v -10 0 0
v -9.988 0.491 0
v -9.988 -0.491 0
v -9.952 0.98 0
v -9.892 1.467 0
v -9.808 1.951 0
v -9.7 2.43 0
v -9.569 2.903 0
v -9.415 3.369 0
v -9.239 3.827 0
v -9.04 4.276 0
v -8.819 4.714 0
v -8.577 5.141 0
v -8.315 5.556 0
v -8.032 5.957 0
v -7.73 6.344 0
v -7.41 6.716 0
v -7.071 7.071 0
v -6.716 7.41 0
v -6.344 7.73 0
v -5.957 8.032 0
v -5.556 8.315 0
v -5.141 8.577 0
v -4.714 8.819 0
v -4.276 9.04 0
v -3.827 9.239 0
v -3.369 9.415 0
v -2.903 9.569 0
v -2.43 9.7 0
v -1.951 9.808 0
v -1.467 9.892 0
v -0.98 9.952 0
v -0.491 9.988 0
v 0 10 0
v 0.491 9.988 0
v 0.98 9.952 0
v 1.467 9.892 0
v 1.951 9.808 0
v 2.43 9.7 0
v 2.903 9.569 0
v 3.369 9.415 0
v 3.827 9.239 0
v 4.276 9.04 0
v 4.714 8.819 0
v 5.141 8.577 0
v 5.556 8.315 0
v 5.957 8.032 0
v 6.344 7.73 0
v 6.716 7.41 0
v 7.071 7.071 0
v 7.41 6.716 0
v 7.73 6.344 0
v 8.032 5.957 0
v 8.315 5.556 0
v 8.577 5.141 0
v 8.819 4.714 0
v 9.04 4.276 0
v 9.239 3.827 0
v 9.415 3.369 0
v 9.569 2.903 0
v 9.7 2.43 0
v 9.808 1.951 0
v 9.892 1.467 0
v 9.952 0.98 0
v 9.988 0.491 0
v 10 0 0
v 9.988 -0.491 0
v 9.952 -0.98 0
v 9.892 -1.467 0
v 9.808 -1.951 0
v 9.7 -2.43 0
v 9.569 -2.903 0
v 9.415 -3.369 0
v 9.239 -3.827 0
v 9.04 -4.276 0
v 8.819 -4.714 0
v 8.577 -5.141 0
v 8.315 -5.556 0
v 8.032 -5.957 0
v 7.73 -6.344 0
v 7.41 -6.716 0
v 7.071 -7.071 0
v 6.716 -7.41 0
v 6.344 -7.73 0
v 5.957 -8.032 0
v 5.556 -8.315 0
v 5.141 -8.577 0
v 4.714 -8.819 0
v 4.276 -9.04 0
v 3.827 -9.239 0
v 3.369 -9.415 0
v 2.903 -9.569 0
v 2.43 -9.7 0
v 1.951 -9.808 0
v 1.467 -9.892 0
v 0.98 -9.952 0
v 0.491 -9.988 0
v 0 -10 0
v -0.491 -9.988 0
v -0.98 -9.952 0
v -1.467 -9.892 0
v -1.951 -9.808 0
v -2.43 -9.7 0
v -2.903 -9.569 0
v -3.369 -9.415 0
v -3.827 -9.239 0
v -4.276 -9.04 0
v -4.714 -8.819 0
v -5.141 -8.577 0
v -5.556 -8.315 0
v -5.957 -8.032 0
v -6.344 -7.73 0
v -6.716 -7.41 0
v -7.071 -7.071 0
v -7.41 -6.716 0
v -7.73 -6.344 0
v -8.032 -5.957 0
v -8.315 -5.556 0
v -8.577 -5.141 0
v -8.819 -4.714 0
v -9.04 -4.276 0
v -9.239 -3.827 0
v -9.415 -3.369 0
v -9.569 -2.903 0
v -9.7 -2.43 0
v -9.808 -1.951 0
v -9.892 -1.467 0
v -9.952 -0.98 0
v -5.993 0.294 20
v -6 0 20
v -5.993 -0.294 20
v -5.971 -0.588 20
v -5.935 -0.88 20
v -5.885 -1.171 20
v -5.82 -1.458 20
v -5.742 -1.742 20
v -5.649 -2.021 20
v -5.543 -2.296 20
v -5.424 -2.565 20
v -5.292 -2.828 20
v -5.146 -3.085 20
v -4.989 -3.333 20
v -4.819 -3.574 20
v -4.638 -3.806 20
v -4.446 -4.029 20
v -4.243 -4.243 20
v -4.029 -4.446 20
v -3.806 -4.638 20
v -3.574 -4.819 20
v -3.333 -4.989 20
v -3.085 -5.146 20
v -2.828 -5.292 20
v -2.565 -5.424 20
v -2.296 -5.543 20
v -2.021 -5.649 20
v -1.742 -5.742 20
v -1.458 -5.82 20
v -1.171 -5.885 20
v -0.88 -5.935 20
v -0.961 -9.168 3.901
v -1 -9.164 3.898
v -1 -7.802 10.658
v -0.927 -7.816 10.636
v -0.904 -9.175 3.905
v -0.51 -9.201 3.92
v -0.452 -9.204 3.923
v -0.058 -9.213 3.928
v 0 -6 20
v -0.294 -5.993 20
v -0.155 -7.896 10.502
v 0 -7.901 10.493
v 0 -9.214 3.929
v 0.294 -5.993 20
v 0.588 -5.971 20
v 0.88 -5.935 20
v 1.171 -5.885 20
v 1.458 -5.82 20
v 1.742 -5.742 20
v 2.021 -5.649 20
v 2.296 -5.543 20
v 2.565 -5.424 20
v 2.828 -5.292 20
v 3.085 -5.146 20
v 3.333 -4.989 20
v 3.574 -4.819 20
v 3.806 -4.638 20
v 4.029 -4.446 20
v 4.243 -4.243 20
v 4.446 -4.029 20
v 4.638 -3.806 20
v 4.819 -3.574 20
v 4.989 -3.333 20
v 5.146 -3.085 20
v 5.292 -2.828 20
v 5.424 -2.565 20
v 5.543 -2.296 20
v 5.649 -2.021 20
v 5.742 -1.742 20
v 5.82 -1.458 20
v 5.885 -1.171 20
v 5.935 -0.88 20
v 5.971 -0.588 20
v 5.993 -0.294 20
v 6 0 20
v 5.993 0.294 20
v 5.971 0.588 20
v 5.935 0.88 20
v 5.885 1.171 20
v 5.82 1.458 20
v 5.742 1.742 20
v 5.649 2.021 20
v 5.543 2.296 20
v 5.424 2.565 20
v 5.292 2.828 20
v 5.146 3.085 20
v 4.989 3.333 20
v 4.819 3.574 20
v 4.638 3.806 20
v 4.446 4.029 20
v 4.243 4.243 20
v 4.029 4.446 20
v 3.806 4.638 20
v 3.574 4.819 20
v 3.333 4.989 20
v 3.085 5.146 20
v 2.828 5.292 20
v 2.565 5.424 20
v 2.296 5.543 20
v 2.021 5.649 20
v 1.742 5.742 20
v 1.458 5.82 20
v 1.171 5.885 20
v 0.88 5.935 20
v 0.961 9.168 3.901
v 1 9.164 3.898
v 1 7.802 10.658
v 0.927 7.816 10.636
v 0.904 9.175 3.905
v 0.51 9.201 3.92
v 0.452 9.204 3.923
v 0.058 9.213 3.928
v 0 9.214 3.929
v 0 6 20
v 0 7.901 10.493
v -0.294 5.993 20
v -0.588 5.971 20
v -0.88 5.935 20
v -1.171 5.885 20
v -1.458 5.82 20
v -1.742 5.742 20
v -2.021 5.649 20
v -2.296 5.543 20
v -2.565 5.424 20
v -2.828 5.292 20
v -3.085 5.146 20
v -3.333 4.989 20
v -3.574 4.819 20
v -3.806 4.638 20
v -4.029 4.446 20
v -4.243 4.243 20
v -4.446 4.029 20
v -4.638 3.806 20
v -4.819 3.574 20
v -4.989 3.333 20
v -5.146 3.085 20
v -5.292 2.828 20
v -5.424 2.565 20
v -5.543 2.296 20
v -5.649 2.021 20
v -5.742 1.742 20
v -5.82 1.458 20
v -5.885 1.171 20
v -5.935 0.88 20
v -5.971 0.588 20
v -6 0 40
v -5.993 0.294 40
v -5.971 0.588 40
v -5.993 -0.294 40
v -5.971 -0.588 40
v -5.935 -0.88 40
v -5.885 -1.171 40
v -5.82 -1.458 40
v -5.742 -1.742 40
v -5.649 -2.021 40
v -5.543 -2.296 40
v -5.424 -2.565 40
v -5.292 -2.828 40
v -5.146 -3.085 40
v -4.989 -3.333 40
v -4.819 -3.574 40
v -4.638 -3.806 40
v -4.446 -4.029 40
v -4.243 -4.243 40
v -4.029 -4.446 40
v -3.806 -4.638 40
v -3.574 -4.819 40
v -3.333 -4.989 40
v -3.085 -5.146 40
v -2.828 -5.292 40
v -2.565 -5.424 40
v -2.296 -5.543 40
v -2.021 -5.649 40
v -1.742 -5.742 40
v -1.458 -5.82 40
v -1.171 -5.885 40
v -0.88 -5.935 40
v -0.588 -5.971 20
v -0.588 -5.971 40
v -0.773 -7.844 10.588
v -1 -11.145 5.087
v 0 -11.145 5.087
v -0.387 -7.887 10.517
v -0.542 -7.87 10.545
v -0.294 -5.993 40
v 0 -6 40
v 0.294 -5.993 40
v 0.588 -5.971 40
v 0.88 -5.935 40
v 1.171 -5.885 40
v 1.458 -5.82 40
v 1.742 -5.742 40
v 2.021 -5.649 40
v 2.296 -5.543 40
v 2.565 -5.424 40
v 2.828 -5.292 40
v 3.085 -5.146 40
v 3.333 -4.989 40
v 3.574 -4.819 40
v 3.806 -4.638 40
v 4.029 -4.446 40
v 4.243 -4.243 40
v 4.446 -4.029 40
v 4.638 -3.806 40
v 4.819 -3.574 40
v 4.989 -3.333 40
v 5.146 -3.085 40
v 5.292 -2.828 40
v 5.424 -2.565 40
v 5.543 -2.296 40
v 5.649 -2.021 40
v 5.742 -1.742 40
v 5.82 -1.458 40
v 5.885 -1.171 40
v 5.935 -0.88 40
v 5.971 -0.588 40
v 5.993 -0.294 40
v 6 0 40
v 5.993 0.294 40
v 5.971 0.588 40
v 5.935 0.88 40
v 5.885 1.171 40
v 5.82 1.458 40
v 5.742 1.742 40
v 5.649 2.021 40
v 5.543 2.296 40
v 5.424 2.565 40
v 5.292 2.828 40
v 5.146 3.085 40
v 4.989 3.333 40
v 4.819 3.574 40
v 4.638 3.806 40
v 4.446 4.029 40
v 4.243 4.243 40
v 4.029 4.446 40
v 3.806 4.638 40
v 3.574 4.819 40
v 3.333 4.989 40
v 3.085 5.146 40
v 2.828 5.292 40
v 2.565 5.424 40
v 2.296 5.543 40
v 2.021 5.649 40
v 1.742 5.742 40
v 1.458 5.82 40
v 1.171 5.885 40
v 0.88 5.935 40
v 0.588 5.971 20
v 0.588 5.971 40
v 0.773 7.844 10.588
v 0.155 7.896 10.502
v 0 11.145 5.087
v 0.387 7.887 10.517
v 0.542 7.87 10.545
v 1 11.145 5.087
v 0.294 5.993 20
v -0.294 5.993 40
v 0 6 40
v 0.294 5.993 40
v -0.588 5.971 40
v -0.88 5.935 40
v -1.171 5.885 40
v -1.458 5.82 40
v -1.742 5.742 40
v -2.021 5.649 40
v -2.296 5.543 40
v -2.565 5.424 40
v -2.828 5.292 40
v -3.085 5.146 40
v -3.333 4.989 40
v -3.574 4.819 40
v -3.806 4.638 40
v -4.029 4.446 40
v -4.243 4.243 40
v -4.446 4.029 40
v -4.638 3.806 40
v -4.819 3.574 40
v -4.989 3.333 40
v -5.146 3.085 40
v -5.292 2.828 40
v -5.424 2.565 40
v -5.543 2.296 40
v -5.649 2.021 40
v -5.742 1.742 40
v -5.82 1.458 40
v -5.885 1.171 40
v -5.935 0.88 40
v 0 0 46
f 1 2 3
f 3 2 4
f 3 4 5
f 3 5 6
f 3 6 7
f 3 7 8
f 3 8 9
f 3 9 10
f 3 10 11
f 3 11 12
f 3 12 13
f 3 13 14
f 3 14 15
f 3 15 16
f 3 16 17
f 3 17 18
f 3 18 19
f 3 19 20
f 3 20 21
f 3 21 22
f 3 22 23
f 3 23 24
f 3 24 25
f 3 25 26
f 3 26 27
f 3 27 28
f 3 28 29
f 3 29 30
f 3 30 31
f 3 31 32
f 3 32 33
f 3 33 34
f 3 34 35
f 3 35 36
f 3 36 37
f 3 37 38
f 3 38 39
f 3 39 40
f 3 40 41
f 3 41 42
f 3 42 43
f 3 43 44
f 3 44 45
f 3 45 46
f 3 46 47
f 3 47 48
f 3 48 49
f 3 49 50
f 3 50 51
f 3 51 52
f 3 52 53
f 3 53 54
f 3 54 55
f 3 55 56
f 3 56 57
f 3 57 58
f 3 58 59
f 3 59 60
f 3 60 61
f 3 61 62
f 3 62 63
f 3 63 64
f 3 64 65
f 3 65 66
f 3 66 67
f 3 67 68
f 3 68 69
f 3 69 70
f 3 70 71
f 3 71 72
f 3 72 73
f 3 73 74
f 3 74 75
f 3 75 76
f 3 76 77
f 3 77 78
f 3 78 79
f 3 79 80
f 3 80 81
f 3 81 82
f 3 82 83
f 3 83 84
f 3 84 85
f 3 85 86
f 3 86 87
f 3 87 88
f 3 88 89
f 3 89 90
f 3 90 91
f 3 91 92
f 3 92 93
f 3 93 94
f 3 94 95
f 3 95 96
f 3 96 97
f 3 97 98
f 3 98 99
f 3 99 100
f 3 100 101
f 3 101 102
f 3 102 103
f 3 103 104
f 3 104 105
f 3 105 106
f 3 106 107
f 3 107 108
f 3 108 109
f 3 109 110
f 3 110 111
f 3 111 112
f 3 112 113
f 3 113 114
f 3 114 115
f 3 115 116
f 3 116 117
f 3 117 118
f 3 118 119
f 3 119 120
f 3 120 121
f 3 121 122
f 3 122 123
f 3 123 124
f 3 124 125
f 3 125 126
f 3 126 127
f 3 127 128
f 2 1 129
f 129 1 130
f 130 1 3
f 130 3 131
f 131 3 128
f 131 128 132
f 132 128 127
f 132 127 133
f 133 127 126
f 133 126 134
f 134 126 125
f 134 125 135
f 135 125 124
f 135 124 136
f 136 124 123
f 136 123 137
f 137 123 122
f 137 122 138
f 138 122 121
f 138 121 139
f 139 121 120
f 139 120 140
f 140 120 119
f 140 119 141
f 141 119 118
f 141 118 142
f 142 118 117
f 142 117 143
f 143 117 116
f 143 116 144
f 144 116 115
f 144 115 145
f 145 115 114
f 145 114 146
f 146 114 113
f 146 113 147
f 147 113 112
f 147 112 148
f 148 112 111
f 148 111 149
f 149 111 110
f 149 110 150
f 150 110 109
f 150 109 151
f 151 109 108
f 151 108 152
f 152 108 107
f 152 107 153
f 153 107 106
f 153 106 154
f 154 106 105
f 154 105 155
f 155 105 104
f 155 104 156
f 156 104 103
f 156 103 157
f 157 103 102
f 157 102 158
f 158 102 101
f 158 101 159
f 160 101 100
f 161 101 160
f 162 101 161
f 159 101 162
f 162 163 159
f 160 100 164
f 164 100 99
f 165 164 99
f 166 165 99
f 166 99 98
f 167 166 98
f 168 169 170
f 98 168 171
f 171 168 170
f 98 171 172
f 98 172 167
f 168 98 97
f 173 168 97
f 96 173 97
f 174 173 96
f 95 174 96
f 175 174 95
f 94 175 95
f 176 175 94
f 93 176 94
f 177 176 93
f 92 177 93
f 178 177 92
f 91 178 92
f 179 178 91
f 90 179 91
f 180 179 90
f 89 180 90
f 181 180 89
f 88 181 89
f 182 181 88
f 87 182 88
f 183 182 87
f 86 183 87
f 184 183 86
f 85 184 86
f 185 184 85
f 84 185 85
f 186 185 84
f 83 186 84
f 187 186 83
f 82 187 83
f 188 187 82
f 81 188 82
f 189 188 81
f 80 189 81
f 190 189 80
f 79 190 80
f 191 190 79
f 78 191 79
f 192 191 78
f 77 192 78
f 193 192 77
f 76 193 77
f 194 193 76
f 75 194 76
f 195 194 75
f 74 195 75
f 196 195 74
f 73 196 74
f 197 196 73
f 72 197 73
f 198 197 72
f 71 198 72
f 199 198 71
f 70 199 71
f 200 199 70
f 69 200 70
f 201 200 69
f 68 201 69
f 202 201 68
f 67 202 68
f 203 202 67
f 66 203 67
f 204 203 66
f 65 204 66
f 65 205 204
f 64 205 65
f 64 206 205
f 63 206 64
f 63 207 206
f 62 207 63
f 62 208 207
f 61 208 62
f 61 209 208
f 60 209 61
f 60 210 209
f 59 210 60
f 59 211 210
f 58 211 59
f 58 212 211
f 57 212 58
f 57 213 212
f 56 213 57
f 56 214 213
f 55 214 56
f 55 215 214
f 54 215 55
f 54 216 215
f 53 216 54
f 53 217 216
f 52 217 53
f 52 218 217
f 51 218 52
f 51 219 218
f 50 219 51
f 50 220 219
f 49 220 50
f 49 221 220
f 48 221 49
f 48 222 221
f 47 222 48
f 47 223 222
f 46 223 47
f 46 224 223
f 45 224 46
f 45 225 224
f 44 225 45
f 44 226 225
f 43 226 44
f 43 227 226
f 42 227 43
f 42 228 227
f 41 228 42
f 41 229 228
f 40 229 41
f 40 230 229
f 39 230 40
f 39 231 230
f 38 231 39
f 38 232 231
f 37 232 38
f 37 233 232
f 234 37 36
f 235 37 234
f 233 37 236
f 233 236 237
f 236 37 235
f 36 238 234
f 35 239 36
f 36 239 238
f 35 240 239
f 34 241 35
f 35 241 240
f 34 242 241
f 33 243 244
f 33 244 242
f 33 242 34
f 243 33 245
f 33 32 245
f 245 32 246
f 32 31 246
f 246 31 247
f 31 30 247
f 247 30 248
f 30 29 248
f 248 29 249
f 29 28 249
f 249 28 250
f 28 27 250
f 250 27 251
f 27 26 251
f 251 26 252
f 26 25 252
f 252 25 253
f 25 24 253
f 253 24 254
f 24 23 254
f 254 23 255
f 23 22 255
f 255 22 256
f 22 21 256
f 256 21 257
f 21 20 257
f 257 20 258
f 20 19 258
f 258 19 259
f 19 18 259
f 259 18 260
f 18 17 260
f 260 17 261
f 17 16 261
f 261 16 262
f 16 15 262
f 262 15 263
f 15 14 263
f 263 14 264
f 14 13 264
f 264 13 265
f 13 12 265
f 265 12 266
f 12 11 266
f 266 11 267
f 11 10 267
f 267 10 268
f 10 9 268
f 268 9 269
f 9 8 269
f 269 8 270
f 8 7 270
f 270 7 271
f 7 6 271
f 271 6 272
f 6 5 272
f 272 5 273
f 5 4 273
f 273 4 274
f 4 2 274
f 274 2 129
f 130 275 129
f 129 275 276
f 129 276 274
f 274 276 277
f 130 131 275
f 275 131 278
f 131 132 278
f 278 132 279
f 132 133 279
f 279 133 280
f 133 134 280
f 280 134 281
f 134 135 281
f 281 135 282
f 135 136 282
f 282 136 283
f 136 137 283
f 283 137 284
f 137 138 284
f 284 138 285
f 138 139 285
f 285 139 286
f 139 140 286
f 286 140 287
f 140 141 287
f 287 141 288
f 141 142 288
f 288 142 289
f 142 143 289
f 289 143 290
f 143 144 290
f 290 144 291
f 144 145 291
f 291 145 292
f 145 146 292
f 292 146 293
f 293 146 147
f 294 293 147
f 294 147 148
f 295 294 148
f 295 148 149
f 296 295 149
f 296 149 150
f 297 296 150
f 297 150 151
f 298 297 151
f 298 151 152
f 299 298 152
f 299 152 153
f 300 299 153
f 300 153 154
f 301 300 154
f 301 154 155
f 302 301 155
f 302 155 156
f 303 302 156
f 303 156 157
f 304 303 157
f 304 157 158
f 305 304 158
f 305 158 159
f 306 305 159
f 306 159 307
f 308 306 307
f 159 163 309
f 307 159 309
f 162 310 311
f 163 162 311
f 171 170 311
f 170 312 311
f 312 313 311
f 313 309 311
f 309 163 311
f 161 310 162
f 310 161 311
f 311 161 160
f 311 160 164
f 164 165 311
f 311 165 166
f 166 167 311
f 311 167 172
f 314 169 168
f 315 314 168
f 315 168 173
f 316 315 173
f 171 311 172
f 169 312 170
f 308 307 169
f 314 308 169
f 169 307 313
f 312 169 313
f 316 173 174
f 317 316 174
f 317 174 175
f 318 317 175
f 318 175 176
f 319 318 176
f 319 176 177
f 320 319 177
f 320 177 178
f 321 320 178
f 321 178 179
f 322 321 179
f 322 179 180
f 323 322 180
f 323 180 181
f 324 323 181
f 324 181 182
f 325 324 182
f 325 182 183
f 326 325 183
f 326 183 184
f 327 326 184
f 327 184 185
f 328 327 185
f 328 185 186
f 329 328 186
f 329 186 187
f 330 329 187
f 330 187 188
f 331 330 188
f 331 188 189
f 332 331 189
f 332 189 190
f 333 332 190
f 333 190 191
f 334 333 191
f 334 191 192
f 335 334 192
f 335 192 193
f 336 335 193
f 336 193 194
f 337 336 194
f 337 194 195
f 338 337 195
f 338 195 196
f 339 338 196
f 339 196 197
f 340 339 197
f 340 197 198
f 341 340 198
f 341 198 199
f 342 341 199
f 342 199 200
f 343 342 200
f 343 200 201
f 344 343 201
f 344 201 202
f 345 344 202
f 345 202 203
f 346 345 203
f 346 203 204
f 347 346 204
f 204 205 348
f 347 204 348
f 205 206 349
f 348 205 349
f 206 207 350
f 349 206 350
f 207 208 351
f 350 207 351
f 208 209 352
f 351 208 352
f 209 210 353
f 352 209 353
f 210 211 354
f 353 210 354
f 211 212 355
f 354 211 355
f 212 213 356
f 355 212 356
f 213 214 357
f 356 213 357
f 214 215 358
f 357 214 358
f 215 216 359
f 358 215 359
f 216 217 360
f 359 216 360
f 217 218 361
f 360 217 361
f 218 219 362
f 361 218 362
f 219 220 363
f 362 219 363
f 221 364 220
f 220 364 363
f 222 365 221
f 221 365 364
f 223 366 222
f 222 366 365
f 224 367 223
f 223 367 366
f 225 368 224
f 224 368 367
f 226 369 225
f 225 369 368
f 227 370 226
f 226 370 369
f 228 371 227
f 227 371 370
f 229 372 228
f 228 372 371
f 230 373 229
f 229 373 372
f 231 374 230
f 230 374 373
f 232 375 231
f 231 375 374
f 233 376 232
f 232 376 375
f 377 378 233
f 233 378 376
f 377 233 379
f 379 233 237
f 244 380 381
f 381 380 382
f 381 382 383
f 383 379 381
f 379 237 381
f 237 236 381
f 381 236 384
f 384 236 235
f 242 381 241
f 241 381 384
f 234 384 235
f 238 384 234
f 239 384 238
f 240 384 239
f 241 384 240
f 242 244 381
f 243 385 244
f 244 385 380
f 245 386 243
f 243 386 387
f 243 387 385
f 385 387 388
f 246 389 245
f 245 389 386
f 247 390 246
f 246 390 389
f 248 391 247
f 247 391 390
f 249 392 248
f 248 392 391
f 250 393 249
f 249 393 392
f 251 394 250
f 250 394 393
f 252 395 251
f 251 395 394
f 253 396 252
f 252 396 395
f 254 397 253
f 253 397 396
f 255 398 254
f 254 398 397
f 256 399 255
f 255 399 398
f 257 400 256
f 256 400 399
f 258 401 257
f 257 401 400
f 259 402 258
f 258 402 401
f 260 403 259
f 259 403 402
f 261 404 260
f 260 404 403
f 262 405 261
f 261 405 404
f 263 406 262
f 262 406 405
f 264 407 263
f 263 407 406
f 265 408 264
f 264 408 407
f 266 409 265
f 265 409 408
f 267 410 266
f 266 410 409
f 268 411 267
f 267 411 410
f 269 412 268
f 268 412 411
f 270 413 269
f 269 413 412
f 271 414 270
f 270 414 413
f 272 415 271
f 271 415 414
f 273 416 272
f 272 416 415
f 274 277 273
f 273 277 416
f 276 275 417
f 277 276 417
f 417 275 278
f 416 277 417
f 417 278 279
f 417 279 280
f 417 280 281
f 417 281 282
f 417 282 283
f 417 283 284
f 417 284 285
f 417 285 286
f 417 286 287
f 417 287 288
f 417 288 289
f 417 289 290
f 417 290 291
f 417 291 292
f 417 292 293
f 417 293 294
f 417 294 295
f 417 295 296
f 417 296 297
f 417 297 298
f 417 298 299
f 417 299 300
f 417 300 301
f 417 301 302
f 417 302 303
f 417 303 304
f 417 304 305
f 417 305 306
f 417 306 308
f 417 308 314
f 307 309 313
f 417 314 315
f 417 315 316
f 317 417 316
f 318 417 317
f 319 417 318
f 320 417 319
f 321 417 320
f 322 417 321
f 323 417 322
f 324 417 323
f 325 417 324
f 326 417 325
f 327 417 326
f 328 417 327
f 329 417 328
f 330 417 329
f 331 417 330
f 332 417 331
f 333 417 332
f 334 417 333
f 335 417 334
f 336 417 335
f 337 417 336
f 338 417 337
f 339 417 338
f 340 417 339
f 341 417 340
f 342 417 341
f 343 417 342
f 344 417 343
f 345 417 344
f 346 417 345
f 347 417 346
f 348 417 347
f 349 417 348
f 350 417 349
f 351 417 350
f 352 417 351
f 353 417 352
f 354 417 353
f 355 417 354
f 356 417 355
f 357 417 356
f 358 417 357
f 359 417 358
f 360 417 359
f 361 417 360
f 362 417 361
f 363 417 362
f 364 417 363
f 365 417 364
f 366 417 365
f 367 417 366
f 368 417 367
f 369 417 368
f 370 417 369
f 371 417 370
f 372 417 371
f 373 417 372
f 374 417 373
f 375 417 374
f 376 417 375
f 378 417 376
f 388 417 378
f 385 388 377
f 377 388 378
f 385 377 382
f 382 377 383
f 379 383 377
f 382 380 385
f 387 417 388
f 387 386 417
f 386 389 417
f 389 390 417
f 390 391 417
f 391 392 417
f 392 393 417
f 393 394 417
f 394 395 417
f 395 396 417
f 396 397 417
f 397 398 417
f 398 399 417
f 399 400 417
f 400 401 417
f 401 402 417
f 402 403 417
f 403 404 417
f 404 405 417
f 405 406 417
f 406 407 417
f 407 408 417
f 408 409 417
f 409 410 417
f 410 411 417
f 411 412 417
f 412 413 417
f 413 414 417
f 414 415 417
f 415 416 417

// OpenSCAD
$fn = 128;
	
cylinder(h=20, r1=10, r2=6);

translate([0,0,20])
	cylinder(h=20, r=6);
	
//how to translate relativley?
translate([0,6,2])
	rotate([atan(6/10), 0, 0])	
	cube([1,6,10], center=false);

translate([0,-6,2])
	rotate([atan(6/10), 0, 180])	
	cube([1,6,10], center=false);

translate([0,0,40])
	cylinder(h=6, r1=6, r2=0);
